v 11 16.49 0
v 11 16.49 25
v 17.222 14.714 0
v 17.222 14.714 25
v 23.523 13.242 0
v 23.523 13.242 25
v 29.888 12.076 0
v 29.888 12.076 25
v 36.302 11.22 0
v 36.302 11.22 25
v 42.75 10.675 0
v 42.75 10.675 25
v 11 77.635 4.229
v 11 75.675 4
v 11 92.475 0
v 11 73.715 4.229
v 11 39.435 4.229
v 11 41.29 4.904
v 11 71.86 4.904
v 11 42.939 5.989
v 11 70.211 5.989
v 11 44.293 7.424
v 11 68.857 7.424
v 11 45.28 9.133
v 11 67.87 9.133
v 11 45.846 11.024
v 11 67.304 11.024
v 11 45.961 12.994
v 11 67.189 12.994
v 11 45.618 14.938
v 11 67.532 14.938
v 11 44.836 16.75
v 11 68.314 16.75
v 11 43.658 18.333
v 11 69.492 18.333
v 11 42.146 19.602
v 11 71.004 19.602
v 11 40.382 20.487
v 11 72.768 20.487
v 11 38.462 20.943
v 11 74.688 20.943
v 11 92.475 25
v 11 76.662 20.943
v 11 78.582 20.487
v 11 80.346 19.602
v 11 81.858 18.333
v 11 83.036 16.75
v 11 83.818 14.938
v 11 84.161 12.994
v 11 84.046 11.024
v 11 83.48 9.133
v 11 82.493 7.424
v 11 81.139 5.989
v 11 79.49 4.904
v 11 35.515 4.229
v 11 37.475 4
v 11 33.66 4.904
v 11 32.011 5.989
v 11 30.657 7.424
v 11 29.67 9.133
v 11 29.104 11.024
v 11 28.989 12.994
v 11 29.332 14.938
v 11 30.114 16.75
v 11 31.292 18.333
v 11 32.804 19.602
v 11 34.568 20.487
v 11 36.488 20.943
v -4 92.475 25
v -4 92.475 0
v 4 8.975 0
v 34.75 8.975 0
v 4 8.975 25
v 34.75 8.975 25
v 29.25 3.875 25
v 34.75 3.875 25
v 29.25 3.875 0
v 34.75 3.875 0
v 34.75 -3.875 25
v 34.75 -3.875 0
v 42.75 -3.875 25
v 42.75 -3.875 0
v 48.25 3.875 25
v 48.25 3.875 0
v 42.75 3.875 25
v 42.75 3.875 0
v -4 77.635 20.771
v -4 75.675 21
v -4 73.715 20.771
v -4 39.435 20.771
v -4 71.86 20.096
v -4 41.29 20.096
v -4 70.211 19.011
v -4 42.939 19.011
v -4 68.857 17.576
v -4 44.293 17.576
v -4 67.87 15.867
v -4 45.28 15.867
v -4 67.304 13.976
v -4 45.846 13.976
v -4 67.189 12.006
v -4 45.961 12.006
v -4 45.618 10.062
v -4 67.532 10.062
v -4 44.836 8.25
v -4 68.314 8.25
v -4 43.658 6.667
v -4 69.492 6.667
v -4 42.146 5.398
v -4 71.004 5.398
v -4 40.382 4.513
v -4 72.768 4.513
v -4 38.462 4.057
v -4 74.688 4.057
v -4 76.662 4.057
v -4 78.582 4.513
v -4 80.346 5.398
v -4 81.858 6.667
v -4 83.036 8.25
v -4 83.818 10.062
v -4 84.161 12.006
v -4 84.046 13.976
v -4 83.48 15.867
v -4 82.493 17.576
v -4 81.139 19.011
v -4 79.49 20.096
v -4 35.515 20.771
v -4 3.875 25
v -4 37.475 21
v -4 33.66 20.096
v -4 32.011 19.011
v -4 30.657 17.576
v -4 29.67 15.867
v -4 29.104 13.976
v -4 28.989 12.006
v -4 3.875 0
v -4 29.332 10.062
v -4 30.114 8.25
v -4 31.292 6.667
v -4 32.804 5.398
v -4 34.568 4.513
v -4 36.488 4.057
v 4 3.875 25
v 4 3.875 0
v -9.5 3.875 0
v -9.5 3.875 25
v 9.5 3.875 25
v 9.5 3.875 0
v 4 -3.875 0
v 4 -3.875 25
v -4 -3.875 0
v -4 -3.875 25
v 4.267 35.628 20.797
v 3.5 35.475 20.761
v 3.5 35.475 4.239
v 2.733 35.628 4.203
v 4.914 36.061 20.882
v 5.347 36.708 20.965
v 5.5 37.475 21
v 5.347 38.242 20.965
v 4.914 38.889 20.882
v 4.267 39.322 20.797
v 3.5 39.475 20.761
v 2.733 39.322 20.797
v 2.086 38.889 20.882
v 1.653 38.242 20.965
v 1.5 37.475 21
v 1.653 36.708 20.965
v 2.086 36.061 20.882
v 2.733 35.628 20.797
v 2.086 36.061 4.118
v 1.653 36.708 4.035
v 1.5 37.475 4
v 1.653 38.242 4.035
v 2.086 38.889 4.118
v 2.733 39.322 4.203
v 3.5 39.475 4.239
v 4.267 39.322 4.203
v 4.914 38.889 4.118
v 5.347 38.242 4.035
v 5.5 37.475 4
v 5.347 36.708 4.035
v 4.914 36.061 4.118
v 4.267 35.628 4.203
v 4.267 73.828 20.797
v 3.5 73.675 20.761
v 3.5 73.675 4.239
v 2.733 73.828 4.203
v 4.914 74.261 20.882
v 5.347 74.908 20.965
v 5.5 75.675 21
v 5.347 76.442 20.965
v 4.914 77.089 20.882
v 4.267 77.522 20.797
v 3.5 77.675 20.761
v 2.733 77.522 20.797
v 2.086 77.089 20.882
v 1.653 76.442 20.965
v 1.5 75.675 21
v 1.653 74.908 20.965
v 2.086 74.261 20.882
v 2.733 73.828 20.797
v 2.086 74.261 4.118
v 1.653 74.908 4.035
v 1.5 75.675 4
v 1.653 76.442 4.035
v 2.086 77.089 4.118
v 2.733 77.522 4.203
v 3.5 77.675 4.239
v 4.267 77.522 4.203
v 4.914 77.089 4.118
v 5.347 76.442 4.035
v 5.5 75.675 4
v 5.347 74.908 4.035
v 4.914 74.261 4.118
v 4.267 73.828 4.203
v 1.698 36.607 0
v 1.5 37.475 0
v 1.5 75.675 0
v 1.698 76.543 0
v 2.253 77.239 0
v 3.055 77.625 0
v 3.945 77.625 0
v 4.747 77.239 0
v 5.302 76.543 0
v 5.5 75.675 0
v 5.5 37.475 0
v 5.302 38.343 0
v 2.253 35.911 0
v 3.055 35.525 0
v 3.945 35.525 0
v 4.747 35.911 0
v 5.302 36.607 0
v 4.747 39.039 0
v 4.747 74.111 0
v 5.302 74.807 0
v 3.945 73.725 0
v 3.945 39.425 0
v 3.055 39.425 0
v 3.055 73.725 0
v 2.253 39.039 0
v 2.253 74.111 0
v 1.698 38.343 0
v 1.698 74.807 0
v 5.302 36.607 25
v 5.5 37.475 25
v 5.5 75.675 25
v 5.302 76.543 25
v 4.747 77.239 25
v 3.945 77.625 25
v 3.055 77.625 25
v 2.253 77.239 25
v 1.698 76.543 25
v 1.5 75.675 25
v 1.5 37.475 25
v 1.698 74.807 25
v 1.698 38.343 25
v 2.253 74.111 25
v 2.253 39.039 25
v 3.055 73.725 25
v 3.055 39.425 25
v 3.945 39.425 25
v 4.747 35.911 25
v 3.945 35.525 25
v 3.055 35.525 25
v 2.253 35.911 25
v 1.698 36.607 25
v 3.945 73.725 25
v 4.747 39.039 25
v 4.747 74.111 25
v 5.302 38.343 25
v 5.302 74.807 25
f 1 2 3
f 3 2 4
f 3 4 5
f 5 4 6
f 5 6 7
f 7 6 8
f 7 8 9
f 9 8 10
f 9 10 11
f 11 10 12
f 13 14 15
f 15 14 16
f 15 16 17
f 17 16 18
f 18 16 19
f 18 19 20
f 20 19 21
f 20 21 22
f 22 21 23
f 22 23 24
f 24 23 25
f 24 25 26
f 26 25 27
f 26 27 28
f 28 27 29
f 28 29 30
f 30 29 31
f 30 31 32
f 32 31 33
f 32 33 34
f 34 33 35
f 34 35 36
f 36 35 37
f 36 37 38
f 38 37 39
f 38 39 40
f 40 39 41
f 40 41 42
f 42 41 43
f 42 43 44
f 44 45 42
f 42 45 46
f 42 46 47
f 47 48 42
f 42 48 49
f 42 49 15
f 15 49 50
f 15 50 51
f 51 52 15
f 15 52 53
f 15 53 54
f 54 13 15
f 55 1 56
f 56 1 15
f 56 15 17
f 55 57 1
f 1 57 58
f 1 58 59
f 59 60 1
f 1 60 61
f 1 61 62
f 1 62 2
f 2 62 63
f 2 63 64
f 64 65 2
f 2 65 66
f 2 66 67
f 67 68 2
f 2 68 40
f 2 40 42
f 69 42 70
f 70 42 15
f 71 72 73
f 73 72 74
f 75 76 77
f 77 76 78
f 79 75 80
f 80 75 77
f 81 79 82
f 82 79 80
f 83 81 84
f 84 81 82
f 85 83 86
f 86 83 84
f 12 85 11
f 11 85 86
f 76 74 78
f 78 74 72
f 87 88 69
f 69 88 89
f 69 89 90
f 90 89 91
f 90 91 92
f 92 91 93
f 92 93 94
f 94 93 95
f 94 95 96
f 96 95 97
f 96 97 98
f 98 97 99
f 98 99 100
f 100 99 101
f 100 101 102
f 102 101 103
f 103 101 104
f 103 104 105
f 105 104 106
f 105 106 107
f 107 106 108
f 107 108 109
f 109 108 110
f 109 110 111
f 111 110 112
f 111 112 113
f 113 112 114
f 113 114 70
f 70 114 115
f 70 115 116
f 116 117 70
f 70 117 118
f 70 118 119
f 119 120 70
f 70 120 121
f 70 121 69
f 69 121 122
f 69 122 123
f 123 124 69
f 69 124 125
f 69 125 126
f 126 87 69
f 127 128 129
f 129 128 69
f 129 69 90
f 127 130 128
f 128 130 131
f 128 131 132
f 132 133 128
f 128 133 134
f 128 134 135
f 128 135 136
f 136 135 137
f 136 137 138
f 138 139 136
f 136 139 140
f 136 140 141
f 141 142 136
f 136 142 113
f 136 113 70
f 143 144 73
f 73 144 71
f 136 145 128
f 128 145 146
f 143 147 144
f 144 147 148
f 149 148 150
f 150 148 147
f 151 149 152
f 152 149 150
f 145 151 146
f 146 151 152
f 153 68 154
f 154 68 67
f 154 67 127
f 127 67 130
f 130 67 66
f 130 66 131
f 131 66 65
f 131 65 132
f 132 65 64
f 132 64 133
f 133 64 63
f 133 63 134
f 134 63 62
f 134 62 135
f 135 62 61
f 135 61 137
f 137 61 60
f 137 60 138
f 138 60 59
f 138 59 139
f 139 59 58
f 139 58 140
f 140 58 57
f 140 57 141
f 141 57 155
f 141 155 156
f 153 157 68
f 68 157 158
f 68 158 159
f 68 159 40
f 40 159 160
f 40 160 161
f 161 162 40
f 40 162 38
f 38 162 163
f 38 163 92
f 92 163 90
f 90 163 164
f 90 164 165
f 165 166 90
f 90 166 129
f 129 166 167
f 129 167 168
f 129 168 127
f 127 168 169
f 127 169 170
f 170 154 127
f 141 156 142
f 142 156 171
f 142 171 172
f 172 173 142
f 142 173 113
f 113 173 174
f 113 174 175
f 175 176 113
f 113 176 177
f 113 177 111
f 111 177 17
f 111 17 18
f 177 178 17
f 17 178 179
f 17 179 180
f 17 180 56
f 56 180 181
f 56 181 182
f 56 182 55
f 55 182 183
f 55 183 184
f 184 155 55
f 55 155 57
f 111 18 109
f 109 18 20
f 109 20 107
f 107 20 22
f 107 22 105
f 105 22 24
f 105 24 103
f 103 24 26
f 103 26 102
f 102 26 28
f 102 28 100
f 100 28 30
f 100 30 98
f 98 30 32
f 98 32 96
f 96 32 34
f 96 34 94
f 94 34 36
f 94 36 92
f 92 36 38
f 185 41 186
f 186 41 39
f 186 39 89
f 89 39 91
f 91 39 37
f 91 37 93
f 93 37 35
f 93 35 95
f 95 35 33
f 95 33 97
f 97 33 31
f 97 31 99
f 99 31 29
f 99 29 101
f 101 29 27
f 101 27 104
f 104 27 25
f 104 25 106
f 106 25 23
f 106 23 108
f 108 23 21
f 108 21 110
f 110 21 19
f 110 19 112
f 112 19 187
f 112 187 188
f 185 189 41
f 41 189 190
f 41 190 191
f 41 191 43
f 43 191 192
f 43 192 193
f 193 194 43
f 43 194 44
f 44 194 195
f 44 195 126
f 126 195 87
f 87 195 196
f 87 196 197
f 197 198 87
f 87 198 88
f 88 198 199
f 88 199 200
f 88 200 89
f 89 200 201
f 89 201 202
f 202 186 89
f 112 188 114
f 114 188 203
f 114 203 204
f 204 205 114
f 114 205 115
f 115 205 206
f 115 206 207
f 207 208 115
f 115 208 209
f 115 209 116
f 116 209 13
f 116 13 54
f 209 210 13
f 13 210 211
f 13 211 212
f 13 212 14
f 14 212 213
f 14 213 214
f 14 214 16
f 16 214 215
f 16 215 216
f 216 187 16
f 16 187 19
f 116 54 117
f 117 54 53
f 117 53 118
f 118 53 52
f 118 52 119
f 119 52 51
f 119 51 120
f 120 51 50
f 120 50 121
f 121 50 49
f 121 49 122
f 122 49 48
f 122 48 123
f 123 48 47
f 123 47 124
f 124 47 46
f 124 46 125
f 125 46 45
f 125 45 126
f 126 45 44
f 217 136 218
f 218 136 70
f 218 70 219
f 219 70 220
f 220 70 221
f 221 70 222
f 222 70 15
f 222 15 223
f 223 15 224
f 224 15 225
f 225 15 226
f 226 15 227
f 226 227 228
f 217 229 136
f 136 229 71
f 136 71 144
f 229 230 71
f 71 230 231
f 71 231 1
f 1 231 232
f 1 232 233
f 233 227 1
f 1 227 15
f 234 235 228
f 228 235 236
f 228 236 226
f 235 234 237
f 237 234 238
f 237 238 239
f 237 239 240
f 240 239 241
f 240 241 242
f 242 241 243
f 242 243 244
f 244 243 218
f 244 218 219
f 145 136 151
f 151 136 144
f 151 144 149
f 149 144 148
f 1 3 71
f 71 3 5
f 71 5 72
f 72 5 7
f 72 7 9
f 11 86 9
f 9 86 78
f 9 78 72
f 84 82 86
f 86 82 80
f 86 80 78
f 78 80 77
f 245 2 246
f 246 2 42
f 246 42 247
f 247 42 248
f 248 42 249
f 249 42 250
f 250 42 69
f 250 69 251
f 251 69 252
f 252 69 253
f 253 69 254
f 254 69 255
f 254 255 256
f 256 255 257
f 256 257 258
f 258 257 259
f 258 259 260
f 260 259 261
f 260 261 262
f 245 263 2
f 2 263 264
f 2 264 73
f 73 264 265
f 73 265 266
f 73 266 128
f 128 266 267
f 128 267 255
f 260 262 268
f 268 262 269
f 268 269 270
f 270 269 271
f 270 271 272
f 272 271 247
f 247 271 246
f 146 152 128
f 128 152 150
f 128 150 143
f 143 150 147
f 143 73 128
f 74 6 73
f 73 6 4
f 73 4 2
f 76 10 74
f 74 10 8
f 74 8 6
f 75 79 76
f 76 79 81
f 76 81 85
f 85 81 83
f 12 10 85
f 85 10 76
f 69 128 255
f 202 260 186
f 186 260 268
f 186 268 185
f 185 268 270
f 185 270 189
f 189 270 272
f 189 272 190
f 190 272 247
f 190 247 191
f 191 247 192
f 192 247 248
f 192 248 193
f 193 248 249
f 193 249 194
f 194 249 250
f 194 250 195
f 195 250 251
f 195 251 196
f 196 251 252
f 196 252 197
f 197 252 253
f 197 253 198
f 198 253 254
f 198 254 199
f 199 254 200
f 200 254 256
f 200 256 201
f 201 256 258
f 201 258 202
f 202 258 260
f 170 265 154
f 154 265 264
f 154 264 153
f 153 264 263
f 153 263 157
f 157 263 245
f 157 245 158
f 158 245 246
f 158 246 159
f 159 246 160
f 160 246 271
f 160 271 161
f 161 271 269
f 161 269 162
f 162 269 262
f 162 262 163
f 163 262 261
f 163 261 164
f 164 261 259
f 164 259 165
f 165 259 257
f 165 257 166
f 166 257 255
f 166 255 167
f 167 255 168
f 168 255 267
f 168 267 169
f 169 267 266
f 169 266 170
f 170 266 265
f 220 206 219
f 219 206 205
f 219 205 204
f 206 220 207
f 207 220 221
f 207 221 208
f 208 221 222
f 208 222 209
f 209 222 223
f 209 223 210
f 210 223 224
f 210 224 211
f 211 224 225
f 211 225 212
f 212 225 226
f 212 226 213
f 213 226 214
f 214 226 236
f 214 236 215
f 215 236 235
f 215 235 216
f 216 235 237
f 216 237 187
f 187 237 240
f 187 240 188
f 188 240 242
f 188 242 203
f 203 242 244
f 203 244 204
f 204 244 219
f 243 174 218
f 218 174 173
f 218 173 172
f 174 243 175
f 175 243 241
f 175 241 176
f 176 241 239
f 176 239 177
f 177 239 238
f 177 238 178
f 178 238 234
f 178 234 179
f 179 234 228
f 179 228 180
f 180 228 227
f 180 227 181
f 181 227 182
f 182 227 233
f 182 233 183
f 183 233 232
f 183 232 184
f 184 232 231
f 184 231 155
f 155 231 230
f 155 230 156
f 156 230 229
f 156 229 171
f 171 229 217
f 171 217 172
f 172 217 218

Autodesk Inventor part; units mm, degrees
ref_plane "YZ Plane" through (0, 0, 0) normal (1, 0, 0) x (0, 1, 0)
ref_plane "XZ Plane" through (0, 0, 0) normal (0, 1, 0) x (-1, 0, 0)
ref_plane "XY Plane" through (0, 0, 0) normal (0, 0, 1) x (1, 0, 0)
sketch "Sketch1" plane through (0, 0, 0) normal (0, 0, 1) x (1, 0, 0)
  line L0 (4, 3.875) -> (-4, 3.875)
  line L1 (-4, 3.875) -> (-4, -3.875)
  line L2 (-4, -3.875) -> (4, -3.875)
  line L3 (4, -3.875) -> (4, 3.875)
  line L4 (4, 3.875) -> (-4, -3.875) construction
  line L5 (-4, 3.875) -> (4, -3.875) construction
  line L6 (4, 3.875) -> (9.5, 3.875)
  line L7 (-4, 3.875) -> (-9.5, 3.875)
  line L8 (4, -3.875) -> (9.5, 3.875)
  line L9 (-4, -3.875) -> (-9.5, 3.875)
  point P0 (0, 0)
  point P1 (0, 3.875)
  dimension "d0" = 8
  dimension "d1" = 7.75
  dimension "d2" = 9.5
  dimension "d3" = 9.5
extrude "Extrusion1" add sketch "Sketch1" along normal blind 25
sketch "Sketch2" plane through (-9.5, 3.875, 0) normal (0, 1, 0) x (1, 0, 0)
  line L0 (0, 0) -> (5.5, 0) projected
  line L1 (5.5, -25) -> (13.5, -25) projected
  line L2 (5.5, 0) -> (5.5, -25)
  line L3 (5.5, -25) -> (13.5, -25)
  line L4 (13.5, 0) -> (19, 0) projected
  line L5 (13.5, -25) -> (13.5, 0)
  line L6 (5.5, 0) -> (13.5, 0) projected
  line L7 (13.5, 0) -> (5.5, 0)
  point P0 (9.5, 0)
  dimension "d6" = 8
extrude "Extrusion2" add sketch "Sketch2" along normal blind 5
sketch "Sketch3" plane through (0, 0, 25) normal (0, 0, 1) x (1, 0, 0)
  line L0 (0, 0) -> (14.2258, 0)
  line L1 (-4, -3.875) -> (4, -3.875) projected
  line L2 (4, -3.875) -> (9.5, 3.875) projected
  line L3 (4, -3.875) -> (9.5, 3.875)
  line L4 (9.5, 3.875) -> (4, 3.875)
  line L5 (4, 3.875) -> (4, 8.875) projected
  line L6 (4, 3.875) -> (4, 8.875)
  line L7 (-4, 3.875) -> (-4, 8.875) projected
  line L8 (4, 8.875) -> (-4, 8.875)
  line L9 (-4, 8.875) -> (-4, 3.875)
  line L10 (-4, 3.875) -> (-9.5, 3.875) projected
  line L11 (-4, 3.875) -> (-9.5, 3.875)
  line L12 (-9.5, 3.875) -> (-4, -3.875)
  line L13 (42.75, -3.875) -> (48.25, 3.875)
  line L14 (48.25, 3.875) -> (42.75, 3.875)
  line L15 (42.75, 3.875) -> (42.75, 8.875)
  line L16 (42.75, 8.875) -> (34.75, 8.875)
  line L17 (34.75, 8.875) -> (34.75, 3.875)
  line L18 (34.75, 3.875) -> (29.25, 3.875)
  line L19 (29.25, 3.875) -> (34.75, -3.875)
  line L20 (34.75, -3.875) -> (42.75, -3.875)
  line L21 (34.75, 8.875) -> (42.75, 8.875)
  line L22 (42.75, 8.875) -> (42.75, 8.975)
  line L23 (42.75, 8.975) -> (34.75, 8.975)
  line L24 (34.75, 8.975) -> (34.75, 8.875)
  line L25 (4, 8.875) -> (-4, 8.875)
  line L26 (-4, 8.875) -> (-4, 8.975)
  line L27 (-4, 8.975) -> (4, 8.975)
  line L28 (4, 8.975) -> (4, 8.875)
  line L29 (-4, 8.975) -> (42.75, 8.975)
  line L30 (42.75, 8.975) -> (42.75, 10.675)
  line L31 (42.75, 10.675) -> (-4, 10.675)
  line L32 (-4, 10.675) -> (-4, 8.975)
  point P0 (6.75, 0)
  point P1 (38.75, 0)
  point P2 (52.9758, 0)
  point P3 (45.5, 0)
  dimension "d9" = 6.75
  dimension "d12" = 38.75
  dimension "d19" = 1.7
  dimension "d22" = 0.1
extrude "Extrusion3" add sketch "Sketch3" against normal blind 25 contours L26 L27 L28 L8 | L23 L22 L16 L24 | L16 L15 L14 L13 L20 L19 L18 L17
extrude "Extrusion4" add sketch "Sketch3" against normal blind 25 contours L32 L31 L30 L23 L29 L27
sketch "Sketch4" plane through (0, 0, 25) normal (0, 0, 1) x (1, 0, 0)
  line L0 (42.75, 10.675) -> (-4, 10.675) projected
  line L1 (-4, 10.675) -> (42.75, 10.675)
  line L2 (42.75, 10.675) -> (42.75, 92.475)
  line L3 (42.75, 92.475) -> (-4, 92.475)
  line L4 (-4, 92.475) -> (-4, 10.675)
  line L5 (-4, 10.675) -> (11, 10.675)
  line L6 (11, 10.675) -> (11, 92.475)
  line L7 (11, 92.475) -> (-4, 92.475)
  line L8 (-4, 92.475) -> (-4, 10.675)
  line L9 (78.9241, 46.475) -> (-27.5343, 46.475)
  line L10 (-27.5343, 46.475) -> (-27.5343, 66.675)
  line L11 (-27.5343, 66.675) -> (78.9241, 66.675)
  line L12 (78.9241, 66.675) -> (78.9241, 46.475)
  line L13 (4, 8.975) -> (34.75, 8.975) projected
  line L14 (-36.8215, 45.475) -> (107.9586, 45.475)
  line L15 (107.9586, 45.475) -> (107.9586, 29.475)
  line L16 (107.9586, 29.475) -> (-36.8215, 29.475)
  line L17 (-36.8215, 29.475) -> (-36.8215, 45.475)
  line L18 (-39.8107, 67.675) -> (114.95, 67.675)
  line L19 (114.95, 67.675) -> (114.95, 83.675)
  line L20 (114.95, 83.675) -> (-39.8107, 83.675)
  line L21 (-39.8107, 83.675) -> (-39.8107, 67.675)
  point P0 (0, 0)
  dimension "d23" = 81.8
  dimension "d24" = 15
  dimension "d25" = 37.5
  dimension "d26" = 20.2
  dimension "d27" = 16
  dimension "d28" = 18.8
  dimension "d29" = 16
  dimension "d30" = 1
  dimension "d31" = 1
  dimension "d36" = 8.8
  dimension "d37" = 47
extrude "Extrusion5" add sketch "Sketch4" against normal blind 25 contours L0 L4 L16 L6 | L16 L4 L14 L6 | L14 L4 L9 L6 | L9 L4 L11 L6 | L11 L4 L18 L6 | L18 L4 L20 L6 | L20 L4 L3 L6
sketch "Sketch5" plane through (0, 0, 25) normal (0, 0, 1) x (1, 0, 0)
  line L0 (11, 92.475) -> (11, 10.675) projected
  line L1 (42.75, 10.675) -> (42.75, 3.875) projected
  arc A0 (11, 16.49) -> (42.75, 10.675) centre (50.7681, 144.0402) ccw
  line L2 (11, 16.49) -> (11, 10.675)
  line L3 (11, 10.675) -> (42.75, 10.675) projected
  line L4 (42.75, 10.675) -> (11, 10.675)
  line L5 (34.75, 8.975) -> (4, 8.975) projected
  point P0 (0, 0)
extrude "Extrusion6" add sketch "Sketch5" against normal blind 25
sketch "Sketch6" plane through (-4, 3.875, 0) normal (-1, 0, 0) x (0, 0, 1)
  line L0 (25, 88.6) -> (0, 88.6) projected
  line L1 (25, 0) -> (25, 88.6) projected
  circle A0 centre (12.5, 71.8) radius 8.5
  circle A1 centre (12.5, 33.6) radius 8.5
  point P0 (0, -3.875)
  dimension "d38" = 16.8
  dimension "d39" = 12.5
  dimension "d40" = 17
  dimension "d41" = 55
  dimension "d42" = 17
extrude "Extrusion7" cut sketch "Sketch6" against normal blind 25
sketch "Sketch7" plane through (0, 0, 25) normal (0, 0, 1) x (1, 0, 0)
  line L0 (11, 16.49) -> (11, 92.475) projected
  line L1 (11, 92.475) -> (-4, 92.475) projected
  point P0 (0, 0)
  point P1 (3.5, 75.675)
  point P2 (3.5, 92.475)
  point P3 (3.5, 37.475)
  dimension "d45" = 7.5
  dimension "d46" = 16.8
  dimension "d47" = 55
hole "Hole1" at (3.5, 37.475, 25) at (3.5, 75.675, 25) direction (0, 0, -1) diameter 4 end through all
